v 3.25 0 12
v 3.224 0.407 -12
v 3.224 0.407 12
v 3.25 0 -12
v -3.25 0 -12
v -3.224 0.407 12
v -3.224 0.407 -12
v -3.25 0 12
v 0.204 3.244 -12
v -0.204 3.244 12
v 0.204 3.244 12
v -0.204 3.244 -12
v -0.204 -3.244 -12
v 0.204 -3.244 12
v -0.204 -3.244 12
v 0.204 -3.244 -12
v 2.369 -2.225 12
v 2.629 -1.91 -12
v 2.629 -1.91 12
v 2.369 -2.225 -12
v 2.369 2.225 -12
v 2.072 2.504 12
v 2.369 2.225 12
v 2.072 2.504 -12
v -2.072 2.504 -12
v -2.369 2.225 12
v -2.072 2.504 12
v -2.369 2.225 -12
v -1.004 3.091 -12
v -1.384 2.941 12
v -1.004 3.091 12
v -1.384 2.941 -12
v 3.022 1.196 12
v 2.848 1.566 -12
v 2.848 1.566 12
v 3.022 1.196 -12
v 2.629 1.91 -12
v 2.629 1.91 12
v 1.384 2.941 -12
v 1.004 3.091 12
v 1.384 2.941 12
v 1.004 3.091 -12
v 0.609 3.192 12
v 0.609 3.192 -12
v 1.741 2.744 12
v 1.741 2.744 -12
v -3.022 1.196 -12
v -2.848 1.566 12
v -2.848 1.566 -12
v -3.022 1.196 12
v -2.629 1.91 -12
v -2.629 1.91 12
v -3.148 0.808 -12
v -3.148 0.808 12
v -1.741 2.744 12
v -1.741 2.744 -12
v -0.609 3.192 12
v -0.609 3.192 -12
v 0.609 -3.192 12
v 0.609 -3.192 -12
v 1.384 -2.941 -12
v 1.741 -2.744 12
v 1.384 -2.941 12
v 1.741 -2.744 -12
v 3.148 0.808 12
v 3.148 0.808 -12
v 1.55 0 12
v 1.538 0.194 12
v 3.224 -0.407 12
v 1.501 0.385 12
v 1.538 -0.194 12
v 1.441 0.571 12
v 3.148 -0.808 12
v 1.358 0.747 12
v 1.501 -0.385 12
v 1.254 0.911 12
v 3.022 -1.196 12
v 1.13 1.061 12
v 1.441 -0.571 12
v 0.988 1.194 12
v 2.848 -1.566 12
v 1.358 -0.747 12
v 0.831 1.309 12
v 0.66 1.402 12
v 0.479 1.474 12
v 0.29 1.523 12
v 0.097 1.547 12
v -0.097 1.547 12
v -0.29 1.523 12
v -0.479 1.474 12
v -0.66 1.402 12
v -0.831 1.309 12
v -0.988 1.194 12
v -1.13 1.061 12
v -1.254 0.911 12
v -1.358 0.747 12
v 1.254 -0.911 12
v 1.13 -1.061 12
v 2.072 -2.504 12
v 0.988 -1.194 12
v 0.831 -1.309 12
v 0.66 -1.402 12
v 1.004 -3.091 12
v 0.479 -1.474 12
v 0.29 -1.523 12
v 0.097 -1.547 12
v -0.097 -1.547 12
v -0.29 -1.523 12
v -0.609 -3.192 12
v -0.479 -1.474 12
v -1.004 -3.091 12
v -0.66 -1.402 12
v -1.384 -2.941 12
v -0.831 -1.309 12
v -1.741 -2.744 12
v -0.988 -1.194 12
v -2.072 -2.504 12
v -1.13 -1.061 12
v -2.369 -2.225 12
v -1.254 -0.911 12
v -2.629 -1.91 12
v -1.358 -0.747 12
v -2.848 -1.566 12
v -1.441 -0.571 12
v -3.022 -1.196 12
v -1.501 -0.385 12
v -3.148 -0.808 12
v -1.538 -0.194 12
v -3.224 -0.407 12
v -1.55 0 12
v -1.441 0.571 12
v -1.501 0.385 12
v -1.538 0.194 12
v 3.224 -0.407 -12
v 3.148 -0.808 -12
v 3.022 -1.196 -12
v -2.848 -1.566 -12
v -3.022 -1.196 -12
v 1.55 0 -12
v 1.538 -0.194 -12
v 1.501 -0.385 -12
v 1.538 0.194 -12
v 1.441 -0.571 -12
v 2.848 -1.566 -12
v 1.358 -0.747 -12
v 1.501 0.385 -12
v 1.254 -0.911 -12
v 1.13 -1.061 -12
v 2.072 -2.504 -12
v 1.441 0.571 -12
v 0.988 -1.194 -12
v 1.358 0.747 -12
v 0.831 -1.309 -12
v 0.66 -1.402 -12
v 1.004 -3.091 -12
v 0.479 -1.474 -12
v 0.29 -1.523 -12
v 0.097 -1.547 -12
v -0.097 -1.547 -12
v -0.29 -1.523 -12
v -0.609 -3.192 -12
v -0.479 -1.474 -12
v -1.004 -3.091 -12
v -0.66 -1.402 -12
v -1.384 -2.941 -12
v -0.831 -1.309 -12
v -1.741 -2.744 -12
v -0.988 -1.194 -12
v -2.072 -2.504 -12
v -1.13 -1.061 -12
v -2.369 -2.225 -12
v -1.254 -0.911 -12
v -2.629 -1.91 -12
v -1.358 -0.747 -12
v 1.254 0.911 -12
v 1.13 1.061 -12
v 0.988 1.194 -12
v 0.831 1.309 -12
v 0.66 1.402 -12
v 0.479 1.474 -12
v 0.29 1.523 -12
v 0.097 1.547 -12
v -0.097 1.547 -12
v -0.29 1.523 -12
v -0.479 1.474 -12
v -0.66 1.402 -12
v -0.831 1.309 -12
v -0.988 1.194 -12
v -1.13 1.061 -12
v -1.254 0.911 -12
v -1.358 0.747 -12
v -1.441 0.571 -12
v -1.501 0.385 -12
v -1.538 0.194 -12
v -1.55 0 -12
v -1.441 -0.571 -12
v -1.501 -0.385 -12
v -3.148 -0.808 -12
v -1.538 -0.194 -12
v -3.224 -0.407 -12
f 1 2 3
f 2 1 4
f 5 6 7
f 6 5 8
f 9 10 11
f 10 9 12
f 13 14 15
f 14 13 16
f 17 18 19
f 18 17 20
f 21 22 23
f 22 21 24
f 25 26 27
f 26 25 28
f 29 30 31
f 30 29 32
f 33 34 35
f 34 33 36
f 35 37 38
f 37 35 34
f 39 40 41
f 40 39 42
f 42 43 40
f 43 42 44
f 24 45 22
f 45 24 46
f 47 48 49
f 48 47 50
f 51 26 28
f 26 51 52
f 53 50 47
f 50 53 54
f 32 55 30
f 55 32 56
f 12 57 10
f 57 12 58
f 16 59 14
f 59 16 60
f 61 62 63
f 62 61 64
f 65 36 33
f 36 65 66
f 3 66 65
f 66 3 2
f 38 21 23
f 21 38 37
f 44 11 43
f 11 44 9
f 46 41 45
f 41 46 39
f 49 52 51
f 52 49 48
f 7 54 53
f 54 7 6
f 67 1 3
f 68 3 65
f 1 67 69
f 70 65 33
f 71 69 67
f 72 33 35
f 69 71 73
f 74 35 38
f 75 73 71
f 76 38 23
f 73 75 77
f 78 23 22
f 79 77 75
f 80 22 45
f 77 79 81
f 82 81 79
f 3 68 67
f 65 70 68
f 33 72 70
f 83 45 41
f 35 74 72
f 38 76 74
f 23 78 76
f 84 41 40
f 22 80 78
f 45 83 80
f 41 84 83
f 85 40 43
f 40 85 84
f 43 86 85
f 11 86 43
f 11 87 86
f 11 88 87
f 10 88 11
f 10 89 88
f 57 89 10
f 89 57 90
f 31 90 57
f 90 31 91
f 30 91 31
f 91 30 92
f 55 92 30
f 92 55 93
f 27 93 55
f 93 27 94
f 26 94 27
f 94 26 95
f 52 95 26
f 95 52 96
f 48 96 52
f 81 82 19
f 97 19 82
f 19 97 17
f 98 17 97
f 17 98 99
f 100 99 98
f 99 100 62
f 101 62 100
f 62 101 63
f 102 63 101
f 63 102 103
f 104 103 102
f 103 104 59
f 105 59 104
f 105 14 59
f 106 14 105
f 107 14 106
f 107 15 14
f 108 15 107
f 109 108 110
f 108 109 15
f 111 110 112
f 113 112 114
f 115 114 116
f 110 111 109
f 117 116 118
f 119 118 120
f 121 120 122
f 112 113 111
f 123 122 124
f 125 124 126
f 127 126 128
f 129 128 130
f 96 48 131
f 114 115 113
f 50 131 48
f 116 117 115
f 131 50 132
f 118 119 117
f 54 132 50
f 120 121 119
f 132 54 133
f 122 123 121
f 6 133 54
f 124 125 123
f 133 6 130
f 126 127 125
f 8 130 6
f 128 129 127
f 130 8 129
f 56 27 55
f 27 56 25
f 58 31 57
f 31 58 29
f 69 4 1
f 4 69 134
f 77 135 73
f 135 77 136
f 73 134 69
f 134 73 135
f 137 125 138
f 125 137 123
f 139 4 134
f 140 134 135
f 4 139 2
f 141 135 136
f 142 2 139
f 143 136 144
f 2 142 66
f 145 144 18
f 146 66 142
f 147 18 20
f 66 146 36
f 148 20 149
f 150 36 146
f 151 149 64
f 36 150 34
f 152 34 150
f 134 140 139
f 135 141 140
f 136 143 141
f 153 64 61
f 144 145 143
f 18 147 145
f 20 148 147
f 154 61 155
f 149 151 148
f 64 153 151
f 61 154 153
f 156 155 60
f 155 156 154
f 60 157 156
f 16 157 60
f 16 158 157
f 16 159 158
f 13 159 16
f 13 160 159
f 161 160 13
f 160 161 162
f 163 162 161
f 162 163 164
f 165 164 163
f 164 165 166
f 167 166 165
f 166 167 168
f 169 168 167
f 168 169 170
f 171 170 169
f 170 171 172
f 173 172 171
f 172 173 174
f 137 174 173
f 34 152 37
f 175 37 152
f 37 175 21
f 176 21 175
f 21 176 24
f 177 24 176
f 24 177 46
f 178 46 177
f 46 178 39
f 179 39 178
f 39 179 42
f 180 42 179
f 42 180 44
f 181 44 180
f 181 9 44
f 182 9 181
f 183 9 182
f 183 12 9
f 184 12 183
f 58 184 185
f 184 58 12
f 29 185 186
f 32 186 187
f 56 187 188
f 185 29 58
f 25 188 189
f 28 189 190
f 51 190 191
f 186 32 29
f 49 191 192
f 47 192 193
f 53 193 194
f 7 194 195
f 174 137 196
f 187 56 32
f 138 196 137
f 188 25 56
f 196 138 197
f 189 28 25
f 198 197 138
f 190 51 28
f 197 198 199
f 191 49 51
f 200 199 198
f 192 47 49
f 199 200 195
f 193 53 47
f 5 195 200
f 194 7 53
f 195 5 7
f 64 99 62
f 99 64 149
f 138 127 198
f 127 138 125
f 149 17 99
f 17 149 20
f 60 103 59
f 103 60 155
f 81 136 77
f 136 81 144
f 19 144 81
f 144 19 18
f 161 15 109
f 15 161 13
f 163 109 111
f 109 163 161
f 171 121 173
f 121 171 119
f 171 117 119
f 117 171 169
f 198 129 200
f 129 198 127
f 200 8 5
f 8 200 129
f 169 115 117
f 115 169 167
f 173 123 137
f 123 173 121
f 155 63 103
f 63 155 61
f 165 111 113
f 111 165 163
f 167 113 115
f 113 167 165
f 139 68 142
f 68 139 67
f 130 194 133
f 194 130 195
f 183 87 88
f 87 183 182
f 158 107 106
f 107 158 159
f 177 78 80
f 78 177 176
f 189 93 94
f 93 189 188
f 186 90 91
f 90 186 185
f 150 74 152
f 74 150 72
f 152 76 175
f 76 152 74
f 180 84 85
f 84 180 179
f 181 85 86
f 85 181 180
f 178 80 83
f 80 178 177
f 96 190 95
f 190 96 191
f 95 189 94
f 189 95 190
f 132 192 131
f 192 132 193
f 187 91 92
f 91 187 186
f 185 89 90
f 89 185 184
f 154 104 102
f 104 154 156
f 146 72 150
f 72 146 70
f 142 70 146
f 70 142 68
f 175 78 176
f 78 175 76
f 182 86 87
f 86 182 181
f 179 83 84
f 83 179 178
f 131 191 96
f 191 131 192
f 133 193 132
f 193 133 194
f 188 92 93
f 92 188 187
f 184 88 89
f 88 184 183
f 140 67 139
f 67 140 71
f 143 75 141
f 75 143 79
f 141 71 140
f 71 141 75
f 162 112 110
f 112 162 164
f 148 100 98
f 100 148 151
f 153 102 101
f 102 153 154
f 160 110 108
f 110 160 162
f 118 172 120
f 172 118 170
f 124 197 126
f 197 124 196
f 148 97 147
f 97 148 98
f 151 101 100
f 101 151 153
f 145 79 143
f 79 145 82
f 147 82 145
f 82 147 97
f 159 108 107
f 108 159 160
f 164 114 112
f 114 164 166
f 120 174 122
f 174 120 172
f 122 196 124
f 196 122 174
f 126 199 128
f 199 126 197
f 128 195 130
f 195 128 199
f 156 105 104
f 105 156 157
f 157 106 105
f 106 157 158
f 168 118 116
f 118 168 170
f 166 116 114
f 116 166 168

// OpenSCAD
$fn = 50;


difference() {
	union() {
		translate(v = [0, 0, -12.0000000000]) {
			cylinder(h = 24, r = 3.2500000000);
		}
	}
	union() {
		translate(v = [0, 0, -100.0000000000]) {
			cylinder(h = 200, r = 1.5500000000);
		}
	}
}
